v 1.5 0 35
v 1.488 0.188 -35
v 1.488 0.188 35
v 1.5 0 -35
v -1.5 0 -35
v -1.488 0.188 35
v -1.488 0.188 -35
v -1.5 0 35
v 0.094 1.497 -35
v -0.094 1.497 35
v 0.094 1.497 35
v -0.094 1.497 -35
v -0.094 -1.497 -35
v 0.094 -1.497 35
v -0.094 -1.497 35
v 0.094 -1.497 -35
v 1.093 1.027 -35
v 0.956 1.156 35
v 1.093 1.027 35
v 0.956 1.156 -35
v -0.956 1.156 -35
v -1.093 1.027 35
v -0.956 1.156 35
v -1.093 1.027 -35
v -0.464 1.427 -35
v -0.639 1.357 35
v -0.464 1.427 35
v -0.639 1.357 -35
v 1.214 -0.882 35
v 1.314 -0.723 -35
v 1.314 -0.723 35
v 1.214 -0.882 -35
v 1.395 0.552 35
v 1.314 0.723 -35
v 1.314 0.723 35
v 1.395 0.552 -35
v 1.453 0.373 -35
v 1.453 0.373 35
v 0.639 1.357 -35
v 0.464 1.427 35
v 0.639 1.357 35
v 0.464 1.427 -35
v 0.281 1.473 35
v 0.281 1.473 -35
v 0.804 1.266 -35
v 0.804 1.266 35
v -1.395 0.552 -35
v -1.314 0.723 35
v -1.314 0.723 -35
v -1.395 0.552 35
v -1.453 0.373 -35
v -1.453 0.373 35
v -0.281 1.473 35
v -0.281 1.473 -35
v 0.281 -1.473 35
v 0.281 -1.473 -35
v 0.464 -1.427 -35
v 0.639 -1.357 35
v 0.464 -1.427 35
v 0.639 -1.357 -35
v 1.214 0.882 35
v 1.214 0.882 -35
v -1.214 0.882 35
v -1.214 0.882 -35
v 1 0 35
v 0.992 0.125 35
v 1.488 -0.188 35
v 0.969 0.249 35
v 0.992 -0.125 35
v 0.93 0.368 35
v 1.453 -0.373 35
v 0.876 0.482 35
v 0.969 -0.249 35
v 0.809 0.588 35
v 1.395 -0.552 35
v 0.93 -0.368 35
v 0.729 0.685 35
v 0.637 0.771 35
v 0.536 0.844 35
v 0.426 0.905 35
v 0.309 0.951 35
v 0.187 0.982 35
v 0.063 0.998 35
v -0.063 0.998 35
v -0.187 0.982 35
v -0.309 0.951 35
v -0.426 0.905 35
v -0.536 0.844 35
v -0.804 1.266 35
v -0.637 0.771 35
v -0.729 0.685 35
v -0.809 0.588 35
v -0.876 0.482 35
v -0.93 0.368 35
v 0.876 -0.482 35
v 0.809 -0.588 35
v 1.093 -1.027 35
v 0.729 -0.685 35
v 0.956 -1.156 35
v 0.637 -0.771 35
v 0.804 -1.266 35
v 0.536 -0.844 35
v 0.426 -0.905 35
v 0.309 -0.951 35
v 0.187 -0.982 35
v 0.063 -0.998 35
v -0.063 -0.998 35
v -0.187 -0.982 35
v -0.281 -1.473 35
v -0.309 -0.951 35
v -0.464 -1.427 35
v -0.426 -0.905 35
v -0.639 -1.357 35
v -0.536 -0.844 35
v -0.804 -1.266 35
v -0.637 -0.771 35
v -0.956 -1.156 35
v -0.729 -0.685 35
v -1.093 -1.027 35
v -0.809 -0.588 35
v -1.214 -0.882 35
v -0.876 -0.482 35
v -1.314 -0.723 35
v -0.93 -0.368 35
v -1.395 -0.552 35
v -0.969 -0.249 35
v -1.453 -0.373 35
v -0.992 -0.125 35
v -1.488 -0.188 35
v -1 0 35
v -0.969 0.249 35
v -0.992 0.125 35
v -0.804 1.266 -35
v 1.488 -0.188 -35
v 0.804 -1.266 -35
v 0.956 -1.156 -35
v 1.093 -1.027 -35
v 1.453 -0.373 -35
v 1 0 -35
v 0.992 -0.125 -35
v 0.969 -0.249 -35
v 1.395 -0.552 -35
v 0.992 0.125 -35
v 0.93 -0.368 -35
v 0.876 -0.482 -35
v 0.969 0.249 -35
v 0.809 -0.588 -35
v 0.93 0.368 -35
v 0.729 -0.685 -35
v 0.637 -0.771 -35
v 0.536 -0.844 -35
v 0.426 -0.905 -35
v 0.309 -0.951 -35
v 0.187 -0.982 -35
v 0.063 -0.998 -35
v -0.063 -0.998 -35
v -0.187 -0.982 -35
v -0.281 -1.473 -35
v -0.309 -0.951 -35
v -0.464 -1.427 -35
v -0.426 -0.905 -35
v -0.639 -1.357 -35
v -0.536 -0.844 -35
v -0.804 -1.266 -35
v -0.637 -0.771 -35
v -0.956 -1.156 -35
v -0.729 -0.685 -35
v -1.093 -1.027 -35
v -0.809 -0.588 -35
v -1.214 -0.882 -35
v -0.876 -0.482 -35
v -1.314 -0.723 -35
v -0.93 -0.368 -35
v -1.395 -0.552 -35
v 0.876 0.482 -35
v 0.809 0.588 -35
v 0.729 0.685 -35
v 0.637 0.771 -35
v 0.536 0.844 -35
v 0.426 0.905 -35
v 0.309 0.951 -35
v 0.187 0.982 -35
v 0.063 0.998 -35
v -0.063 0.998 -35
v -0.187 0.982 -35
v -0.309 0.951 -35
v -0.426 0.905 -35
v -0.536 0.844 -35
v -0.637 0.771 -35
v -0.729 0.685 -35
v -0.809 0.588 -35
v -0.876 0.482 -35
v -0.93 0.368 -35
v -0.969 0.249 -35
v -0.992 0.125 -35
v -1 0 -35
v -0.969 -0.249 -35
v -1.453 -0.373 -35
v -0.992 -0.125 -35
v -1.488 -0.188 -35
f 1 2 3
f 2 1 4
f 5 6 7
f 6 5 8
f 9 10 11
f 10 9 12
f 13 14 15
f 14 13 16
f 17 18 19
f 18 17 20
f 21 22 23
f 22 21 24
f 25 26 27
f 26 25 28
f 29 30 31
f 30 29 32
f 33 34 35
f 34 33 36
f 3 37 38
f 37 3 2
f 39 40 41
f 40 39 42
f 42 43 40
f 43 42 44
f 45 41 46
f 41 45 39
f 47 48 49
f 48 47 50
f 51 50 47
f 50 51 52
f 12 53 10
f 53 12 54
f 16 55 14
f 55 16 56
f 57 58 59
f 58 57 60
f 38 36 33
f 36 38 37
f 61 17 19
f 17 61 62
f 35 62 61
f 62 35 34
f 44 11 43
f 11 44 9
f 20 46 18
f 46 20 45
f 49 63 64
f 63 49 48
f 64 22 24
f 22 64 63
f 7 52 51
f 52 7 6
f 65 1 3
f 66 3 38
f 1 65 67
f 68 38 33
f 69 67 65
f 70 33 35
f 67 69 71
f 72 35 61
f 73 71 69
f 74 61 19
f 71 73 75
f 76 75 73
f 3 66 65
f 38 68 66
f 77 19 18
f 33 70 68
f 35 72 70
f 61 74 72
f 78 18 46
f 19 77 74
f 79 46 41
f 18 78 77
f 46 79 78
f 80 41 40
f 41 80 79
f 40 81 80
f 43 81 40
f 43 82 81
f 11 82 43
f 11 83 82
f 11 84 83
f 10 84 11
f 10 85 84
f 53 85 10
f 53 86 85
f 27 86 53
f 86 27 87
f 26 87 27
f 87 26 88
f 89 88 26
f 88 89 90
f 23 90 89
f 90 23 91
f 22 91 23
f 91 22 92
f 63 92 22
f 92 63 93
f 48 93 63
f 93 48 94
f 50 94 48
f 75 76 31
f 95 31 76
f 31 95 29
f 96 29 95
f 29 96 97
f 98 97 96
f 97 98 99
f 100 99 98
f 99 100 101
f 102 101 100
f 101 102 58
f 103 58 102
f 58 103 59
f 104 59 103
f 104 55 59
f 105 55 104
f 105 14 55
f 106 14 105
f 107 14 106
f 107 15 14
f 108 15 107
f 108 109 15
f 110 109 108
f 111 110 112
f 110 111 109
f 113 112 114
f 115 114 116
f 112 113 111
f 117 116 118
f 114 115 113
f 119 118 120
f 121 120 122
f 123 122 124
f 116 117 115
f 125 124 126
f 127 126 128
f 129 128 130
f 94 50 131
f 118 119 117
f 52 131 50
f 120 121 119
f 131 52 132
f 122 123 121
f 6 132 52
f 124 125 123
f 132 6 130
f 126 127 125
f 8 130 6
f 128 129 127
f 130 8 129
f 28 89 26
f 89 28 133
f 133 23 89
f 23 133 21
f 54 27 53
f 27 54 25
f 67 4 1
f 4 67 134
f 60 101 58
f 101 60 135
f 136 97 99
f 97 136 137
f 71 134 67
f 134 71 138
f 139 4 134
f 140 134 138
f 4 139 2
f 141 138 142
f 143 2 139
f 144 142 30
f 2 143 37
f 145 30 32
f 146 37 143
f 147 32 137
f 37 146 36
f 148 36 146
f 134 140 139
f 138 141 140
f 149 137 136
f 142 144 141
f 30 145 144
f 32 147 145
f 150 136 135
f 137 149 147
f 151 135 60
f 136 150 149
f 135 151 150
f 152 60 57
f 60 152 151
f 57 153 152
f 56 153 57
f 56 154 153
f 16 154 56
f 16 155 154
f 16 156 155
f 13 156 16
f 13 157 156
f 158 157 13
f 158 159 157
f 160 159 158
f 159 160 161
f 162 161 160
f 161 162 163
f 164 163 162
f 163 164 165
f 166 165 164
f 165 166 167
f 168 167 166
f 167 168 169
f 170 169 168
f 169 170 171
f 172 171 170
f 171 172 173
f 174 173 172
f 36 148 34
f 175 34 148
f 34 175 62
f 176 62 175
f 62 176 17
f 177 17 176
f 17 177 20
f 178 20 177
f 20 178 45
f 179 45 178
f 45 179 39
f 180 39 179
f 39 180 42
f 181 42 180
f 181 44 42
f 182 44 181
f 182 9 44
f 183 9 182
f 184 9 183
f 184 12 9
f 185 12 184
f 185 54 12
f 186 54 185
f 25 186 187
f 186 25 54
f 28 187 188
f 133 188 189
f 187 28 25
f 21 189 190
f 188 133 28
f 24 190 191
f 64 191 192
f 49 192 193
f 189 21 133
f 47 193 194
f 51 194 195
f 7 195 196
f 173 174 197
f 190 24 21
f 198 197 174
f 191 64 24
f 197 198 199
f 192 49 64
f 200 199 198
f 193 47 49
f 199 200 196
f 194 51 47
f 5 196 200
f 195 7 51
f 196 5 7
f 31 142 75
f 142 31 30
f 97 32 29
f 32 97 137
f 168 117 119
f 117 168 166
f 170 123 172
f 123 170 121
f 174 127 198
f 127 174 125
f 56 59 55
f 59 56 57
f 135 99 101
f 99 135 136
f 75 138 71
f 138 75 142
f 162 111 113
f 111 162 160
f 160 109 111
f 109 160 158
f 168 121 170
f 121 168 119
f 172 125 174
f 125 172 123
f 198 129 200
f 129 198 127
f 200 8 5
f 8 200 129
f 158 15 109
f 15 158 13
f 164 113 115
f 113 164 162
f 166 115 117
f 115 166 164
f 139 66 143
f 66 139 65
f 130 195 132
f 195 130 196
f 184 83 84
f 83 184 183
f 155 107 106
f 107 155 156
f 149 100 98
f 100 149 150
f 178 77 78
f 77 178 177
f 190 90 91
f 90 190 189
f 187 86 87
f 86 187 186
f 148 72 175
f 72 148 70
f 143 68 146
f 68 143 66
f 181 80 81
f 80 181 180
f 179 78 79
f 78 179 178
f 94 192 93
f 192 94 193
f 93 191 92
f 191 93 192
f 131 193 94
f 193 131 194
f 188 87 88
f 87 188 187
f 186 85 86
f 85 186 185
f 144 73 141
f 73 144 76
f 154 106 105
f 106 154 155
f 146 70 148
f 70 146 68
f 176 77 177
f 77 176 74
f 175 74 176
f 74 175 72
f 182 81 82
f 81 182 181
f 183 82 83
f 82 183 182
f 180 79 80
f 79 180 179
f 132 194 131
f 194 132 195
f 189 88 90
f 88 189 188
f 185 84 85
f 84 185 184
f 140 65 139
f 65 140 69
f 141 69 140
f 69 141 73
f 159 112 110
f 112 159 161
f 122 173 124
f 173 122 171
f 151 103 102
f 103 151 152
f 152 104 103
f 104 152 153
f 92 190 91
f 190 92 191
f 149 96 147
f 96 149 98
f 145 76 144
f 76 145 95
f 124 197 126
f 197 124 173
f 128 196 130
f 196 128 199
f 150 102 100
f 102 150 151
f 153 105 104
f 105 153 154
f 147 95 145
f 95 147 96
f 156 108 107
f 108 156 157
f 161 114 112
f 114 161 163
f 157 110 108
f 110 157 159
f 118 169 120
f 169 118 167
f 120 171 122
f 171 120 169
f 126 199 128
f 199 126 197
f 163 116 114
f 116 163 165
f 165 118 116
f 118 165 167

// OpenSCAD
$fn = 50;


difference() {
	union() {
		translate(v = [0, 0, -35.0000000000]) {
			cylinder(h = 70, r = 1.5000000000);
		}
	}
	union() {
		translate(v = [0, 0, -100.0000000000]) {
			cylinder(h = 200, r = 1.0000000000);
		}
	}
}
